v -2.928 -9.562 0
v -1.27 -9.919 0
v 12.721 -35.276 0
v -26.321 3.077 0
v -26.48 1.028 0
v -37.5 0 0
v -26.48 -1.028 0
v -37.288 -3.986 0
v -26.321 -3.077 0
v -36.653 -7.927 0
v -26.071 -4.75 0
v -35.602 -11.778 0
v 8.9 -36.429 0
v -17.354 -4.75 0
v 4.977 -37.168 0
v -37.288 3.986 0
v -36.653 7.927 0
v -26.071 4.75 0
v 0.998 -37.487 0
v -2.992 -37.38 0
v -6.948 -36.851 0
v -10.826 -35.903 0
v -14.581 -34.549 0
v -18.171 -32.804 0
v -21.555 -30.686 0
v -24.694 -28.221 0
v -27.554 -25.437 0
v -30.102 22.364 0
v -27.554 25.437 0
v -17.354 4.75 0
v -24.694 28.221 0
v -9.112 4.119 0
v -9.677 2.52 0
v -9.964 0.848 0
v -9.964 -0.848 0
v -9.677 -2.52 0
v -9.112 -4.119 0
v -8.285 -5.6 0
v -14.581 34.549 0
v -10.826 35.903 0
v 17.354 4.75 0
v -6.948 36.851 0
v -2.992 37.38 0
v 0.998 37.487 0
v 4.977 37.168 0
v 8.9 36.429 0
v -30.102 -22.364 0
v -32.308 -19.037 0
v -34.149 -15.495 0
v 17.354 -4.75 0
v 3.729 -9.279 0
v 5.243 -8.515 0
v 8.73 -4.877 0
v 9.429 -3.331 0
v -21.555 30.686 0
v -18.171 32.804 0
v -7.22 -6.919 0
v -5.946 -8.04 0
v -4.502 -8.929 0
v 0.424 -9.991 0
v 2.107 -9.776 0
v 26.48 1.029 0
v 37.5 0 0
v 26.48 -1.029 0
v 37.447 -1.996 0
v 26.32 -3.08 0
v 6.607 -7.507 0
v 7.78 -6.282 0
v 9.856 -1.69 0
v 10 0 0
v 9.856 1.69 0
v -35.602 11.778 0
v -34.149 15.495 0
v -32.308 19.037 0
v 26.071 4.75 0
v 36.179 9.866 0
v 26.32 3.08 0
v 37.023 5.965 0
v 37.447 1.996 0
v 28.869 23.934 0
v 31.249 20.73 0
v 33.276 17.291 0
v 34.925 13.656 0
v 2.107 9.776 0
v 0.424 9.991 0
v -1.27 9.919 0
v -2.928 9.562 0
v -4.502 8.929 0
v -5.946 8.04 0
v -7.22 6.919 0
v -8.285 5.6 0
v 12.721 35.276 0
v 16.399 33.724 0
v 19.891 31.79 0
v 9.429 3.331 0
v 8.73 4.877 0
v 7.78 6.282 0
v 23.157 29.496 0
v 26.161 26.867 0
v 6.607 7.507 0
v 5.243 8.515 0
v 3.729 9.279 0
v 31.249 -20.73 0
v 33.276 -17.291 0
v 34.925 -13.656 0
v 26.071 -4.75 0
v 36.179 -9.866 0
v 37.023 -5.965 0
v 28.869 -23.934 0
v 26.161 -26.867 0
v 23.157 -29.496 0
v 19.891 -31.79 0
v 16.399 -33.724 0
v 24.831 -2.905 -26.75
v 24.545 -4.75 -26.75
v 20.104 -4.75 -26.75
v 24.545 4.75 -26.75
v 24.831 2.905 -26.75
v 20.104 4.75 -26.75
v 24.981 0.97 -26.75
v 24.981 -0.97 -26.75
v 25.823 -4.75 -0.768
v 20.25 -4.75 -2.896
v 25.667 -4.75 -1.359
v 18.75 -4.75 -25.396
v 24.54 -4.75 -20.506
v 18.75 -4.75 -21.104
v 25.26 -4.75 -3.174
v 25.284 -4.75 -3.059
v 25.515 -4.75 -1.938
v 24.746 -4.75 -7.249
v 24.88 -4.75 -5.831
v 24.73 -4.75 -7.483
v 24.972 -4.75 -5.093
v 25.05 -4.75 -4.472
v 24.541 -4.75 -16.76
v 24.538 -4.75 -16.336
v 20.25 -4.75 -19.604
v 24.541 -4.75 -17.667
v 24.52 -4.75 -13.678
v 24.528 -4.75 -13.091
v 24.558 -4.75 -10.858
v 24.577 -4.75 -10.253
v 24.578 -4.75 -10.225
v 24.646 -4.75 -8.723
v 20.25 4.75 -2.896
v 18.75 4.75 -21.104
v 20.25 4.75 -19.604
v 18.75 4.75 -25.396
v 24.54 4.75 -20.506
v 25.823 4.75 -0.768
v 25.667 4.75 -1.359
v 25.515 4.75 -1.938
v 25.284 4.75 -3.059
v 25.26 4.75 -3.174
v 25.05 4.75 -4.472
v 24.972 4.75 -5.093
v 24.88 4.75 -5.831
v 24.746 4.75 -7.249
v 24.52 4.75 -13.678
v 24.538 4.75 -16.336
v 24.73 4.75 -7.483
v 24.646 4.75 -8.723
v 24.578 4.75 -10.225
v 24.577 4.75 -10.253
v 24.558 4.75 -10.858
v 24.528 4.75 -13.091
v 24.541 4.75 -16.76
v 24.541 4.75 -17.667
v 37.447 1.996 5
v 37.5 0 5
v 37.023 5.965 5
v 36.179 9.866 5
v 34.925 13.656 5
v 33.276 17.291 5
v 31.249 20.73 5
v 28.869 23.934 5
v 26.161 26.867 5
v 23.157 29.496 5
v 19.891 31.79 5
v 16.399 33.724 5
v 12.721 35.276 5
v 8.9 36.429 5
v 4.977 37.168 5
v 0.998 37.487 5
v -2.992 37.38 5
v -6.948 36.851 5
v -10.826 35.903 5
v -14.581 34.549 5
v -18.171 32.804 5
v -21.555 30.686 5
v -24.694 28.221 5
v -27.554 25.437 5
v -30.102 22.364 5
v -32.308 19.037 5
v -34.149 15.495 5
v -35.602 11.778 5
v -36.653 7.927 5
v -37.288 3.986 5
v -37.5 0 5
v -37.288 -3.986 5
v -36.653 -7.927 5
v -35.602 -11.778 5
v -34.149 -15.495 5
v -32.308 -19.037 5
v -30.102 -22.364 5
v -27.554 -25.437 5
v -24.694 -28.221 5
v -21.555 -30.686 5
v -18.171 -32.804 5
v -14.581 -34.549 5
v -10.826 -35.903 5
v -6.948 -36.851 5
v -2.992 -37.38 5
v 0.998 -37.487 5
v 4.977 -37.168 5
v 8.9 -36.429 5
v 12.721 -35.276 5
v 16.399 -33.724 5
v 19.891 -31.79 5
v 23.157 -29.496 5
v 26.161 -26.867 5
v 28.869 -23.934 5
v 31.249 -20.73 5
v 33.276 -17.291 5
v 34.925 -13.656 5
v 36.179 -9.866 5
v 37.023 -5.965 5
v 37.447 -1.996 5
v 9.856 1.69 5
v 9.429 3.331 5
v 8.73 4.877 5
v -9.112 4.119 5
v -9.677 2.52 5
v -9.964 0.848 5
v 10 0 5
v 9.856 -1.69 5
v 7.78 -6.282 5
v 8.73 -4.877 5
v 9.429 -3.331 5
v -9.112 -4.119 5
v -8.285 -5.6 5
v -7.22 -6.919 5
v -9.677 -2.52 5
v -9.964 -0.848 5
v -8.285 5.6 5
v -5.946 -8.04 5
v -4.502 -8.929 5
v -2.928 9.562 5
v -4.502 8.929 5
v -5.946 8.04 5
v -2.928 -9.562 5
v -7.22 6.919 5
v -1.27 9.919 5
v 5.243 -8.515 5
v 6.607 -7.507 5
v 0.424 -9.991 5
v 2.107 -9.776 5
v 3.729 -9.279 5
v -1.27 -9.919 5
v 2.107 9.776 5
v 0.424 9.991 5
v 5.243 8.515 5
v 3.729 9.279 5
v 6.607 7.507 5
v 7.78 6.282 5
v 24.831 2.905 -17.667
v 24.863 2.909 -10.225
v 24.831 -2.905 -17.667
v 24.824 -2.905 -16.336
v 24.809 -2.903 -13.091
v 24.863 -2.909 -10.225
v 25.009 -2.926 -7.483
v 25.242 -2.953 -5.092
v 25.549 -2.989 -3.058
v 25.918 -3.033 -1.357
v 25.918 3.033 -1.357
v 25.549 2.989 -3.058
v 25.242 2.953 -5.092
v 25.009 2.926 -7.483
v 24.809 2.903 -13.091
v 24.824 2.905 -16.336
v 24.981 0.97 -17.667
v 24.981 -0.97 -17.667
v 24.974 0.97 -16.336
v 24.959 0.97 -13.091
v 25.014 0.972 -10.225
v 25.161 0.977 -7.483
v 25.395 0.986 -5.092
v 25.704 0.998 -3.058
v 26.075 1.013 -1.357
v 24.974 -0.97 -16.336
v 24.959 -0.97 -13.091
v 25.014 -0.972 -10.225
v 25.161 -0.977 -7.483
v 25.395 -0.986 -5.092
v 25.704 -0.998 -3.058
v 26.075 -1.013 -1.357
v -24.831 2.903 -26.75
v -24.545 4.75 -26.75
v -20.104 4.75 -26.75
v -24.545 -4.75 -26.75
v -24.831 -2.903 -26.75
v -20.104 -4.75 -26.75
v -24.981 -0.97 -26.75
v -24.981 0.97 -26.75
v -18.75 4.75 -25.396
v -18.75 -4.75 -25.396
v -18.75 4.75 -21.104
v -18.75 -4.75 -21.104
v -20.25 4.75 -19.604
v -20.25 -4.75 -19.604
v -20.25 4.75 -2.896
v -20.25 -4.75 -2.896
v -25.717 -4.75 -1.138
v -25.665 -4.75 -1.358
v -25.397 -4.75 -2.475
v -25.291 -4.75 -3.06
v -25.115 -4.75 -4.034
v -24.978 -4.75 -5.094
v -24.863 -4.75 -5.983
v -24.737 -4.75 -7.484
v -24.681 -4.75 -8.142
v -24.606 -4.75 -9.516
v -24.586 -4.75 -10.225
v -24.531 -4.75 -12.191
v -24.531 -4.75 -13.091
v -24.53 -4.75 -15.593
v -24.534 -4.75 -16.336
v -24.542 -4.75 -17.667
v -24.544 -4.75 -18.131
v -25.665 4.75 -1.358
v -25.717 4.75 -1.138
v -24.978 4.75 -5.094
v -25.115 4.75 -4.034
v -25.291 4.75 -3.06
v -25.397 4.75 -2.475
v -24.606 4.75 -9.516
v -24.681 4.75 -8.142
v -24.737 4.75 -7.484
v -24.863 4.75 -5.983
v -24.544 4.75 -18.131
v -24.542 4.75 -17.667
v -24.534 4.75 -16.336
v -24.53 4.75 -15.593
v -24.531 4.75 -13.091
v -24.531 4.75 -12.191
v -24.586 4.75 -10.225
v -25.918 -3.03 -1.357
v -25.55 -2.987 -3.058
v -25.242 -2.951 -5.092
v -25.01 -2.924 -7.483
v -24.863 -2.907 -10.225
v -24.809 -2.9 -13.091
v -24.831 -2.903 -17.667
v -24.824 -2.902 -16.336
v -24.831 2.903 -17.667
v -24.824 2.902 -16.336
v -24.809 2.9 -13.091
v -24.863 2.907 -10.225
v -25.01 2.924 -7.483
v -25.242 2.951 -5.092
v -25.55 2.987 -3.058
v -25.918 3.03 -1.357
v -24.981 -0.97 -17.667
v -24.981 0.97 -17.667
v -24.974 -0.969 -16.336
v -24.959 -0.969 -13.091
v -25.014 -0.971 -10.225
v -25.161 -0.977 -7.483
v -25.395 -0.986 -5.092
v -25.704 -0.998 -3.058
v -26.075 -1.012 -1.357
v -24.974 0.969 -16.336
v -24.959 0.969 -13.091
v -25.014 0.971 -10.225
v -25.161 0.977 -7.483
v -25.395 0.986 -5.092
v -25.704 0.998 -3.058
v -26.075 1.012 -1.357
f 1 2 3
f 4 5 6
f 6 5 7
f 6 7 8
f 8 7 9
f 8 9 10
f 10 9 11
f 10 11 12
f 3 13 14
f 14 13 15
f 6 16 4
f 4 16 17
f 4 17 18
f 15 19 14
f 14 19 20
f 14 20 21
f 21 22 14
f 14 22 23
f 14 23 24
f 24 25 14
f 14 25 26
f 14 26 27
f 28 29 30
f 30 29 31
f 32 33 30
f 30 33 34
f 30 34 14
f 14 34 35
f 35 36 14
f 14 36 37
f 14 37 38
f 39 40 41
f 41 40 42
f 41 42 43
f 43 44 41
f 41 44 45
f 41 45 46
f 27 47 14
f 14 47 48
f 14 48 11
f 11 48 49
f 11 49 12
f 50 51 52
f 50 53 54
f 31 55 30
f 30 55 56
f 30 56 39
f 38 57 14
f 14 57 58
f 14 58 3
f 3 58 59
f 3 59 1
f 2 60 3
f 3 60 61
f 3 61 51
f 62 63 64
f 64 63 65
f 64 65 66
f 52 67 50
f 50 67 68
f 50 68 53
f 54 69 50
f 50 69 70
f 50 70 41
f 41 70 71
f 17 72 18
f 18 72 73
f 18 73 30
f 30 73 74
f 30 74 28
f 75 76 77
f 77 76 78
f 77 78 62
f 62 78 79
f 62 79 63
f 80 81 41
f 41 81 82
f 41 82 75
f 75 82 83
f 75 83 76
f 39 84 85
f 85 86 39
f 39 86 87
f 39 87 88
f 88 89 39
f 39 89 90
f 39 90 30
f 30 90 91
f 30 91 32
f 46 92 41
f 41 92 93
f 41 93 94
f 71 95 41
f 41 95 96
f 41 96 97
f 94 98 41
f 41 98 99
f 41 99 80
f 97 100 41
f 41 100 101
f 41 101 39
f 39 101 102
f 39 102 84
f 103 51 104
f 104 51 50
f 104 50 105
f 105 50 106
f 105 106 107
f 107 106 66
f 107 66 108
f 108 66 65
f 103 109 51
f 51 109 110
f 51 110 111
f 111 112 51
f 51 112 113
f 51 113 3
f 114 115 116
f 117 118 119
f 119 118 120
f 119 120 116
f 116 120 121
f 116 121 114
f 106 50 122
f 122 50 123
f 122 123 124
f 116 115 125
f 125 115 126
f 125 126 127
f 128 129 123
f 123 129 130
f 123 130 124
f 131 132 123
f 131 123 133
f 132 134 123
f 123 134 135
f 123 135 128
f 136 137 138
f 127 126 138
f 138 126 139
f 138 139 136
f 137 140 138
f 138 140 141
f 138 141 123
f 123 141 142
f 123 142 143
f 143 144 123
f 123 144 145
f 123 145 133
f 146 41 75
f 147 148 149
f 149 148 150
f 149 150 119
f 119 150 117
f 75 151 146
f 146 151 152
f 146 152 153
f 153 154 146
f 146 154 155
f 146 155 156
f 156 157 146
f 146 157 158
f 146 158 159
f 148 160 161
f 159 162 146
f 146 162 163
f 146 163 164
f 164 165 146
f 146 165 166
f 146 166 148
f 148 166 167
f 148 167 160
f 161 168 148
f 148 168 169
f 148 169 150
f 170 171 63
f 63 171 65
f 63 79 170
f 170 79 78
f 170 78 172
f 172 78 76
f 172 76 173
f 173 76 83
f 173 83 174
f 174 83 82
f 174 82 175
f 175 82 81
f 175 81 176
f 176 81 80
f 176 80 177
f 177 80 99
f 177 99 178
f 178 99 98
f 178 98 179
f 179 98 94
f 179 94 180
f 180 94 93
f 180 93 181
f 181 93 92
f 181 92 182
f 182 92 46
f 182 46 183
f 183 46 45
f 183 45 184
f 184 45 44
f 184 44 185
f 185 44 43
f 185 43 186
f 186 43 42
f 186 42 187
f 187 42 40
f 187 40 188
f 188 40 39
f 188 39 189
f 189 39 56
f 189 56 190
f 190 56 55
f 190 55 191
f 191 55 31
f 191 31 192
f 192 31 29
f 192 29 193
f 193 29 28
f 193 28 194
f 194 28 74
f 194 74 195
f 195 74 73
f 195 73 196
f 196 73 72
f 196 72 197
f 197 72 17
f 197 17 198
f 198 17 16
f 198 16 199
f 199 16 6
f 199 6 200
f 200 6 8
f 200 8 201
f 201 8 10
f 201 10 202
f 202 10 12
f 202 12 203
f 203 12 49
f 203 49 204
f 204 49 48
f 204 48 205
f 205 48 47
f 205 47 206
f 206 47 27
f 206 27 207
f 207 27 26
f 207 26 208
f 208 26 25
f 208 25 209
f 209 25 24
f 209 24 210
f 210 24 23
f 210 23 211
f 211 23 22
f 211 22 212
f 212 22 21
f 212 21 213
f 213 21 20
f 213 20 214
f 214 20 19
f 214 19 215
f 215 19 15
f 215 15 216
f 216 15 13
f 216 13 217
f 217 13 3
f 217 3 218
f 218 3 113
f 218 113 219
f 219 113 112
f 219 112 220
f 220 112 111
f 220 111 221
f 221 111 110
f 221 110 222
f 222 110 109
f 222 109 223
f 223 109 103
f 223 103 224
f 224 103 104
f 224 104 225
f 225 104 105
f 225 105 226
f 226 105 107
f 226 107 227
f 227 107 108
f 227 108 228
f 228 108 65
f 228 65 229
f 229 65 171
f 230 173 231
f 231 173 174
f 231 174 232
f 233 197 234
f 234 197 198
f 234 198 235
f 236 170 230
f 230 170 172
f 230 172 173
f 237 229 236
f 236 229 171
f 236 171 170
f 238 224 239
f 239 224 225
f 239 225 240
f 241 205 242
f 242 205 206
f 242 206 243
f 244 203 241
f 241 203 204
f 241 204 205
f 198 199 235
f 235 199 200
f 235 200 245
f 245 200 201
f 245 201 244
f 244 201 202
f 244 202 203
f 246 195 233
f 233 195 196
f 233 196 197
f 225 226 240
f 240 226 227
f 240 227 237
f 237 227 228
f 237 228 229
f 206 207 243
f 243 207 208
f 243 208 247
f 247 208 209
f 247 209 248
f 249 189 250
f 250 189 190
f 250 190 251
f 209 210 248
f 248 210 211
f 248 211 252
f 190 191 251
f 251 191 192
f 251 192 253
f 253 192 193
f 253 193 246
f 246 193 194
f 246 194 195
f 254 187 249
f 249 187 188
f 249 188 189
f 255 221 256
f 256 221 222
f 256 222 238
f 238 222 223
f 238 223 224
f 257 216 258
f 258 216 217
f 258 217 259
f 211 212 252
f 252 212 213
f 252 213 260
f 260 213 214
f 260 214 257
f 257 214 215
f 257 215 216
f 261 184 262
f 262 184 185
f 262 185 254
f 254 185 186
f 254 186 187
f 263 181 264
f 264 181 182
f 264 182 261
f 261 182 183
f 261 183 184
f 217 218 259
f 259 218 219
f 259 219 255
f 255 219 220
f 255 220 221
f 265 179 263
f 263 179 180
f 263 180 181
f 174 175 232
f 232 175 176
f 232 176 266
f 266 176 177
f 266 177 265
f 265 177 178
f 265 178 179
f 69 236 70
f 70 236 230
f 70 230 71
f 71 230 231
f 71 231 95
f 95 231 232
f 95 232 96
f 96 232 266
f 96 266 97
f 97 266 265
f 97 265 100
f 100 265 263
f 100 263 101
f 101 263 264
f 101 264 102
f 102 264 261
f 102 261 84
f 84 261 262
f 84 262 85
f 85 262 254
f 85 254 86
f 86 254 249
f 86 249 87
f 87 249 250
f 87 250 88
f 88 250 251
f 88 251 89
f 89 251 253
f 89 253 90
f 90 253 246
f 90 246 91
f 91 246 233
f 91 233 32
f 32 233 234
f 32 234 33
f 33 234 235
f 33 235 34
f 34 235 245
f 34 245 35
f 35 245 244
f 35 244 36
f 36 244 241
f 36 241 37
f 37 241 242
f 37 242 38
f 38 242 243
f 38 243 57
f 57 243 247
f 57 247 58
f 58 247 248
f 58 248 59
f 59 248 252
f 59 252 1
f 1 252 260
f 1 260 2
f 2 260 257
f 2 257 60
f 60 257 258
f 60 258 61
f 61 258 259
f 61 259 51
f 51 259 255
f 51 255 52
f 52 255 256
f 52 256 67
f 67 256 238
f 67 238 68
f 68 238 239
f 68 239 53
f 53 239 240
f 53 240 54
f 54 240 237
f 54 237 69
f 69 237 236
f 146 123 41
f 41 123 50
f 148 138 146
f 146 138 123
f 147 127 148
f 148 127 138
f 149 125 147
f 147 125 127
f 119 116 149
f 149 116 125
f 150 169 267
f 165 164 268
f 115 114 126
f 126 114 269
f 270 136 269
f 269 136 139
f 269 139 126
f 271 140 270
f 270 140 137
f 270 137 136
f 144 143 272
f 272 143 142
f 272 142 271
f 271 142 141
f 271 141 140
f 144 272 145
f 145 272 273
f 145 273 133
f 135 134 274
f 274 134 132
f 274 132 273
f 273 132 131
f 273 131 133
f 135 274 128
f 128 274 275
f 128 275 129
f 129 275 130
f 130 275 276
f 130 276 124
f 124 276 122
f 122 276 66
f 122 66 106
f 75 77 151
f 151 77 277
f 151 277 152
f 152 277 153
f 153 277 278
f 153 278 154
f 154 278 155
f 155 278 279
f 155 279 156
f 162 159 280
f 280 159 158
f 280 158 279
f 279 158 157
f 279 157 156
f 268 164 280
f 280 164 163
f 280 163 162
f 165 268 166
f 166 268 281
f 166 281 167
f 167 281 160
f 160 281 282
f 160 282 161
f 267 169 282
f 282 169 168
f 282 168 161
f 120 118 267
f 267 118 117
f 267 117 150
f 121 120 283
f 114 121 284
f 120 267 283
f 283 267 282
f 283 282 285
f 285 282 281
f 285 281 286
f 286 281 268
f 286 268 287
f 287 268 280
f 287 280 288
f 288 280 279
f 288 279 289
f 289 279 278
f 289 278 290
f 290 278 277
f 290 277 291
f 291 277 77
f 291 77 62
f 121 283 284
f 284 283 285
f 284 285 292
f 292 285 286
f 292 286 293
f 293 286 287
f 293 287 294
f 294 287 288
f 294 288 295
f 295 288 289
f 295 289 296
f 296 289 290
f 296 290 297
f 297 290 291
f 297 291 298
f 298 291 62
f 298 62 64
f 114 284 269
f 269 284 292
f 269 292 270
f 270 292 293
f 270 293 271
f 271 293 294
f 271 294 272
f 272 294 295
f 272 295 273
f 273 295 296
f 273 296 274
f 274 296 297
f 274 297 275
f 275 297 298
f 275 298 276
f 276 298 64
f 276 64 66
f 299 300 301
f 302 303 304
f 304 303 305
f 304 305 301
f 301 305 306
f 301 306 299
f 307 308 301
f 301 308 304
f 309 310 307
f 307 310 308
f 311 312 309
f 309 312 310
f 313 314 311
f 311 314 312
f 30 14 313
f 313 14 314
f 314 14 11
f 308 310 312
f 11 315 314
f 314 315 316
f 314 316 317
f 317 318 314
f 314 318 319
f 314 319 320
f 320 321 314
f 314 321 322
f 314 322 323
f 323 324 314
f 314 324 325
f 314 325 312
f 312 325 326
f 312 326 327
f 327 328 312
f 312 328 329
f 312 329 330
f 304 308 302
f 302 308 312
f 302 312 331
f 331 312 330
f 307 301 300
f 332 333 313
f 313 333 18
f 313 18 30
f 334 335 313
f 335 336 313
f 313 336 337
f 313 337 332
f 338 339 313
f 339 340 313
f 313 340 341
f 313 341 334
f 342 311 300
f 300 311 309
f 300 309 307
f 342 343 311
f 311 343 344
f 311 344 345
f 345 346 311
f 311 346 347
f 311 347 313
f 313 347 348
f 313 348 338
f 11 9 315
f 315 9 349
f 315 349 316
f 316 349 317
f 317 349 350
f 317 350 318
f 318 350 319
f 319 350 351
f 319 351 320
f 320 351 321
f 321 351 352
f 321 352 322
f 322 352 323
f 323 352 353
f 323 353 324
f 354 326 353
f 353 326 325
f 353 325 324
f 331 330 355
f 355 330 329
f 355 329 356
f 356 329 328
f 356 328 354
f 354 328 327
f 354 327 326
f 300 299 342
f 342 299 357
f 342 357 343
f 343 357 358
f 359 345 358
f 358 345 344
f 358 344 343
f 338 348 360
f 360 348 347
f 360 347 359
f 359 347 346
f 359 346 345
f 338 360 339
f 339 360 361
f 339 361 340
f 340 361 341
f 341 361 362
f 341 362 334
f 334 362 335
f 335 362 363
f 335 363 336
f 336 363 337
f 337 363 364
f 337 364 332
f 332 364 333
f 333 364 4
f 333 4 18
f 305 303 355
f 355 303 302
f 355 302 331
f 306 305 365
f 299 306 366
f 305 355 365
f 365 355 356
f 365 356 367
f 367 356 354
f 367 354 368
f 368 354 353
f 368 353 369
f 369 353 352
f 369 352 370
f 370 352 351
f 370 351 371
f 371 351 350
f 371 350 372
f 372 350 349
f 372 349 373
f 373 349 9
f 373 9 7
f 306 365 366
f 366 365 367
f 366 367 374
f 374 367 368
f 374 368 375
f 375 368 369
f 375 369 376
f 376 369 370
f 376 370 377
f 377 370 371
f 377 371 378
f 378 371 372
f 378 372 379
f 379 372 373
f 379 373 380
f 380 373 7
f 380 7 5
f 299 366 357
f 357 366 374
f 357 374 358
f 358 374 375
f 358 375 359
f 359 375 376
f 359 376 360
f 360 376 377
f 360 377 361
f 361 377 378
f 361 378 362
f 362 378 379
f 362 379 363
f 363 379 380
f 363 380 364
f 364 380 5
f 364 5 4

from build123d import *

# Parameters (mm, degrees)
SKETCH4_R           = 37.5
BOSS_EXTRUDE2_DEPTH = 5
SKETCH5_R           = 10
CUT_EXTRUDE1_DEPTH  = 54.268189382
BOSS_EXTRUDE3_DEPTH = 4.75
SKETCH1_R           = 37.5
CUT_EXTRUDE2_DEPTH  = 60.397495738


with BuildPart() as part:
    # Sketch4 → Boss-Extrude2 (new body)
    with BuildSketch(Plane.XY):
        Circle(SKETCH4_R)
    extrude(amount=BOSS_EXTRUDE2_DEPTH)

    # Sketch5 → Cut-Extrude1 (cut, through all)
    with BuildSketch(Plane.XY.offset(5)):
        Circle(SKETCH5_R)
    extrude(amount=-CUT_EXTRUDE1_DEPTH, mode=Mode.SUBTRACT)

    # Sketch6 → Boss-Extrude3 (add, symmetric)
    with BuildSketch(Plane(origin=(0, 0, 0), x_dir=(1, 0, 0), z_dir=(0, 1, 0))):
        Polygon((20.25, 2.896446609), (17.353553391, 0), (26.5, 0), (26.5, 26.75), (20.103553391, 26.75), (18.75, 25.396446609), (18.75, 21.103553391), (20.25, 19.603553391), align=None)
    boss_extrude3 = extrude(amount=BOSS_EXTRUDE3_DEPTH, both=True)

    # Sketch1 → Cut-Extrude2 (cut, through all)
    with BuildSketch(Plane.XY):
        Circle(SKETCH1_R)
        with BuildLine():
            ThreePointArc((-1, 26.481125354), (18.381376445, 19.088609169), (26.5, 0))
            ThreePointArc((26.5, 0), (18.381376445, -19.088609169), (-1, -26.481125354))
            ThreePointArc((-1, -26.481125354), (-28.5, 0), (-1, 26.481125354))
        make_face(mode=Mode.SUBTRACT)
    cut_extrude2 = extrude(amount=-CUT_EXTRUDE2_DEPTH, mode=Mode.SUBTRACT)

    # Sketch6<4> → Cut-Revolve1 (revolve, cut)
    with BuildSketch(Plane(origin=(0, 0, 0), x_dir=(1, 0, 0), z_dir=(0, 1, 0))):
        with BuildLine():
            add(Edge.make_bspline(
                [(25, 26.75), (25, 22.72818992), (24.990050178, 20.542467854), (25.01194908, 14.942357728), (24.774871471, 4.983935506), (26.5, 0)],
                knots=[0, 0, 0, 0, 0.44660472, 0.54660472, 1, 1, 1, 1], degree=3))
            Line((26.5, 0), (26.5, 26.75))
            Line((26.5, 26.75), (25, 26.75))
        make_face()
    cut_revolve1 = revolve(axis=Axis((0, 0, 0), (0, 0, -1)), mode=Mode.SUBTRACT)

    # Mirror1: Boss-Extrude3, Cut-Extrude2, Cut-Revolve1 across plane
    add(boss_extrude3.mirror(Plane(origin=(0, 0, 0), x_dir=(0, 0, 1), z_dir=(1, 0, 0))))
    add(cut_extrude2.mirror(Plane(origin=(0, 0, 0), x_dir=(0, 0, 1), z_dir=(1, 0, 0))), mode=Mode.SUBTRACT)
    add(cut_revolve1.mirror(Plane(origin=(0, 0, 0), x_dir=(0, 0, 1), z_dir=(1, 0, 0))), mode=Mode.SUBTRACT)


solid = part.part
